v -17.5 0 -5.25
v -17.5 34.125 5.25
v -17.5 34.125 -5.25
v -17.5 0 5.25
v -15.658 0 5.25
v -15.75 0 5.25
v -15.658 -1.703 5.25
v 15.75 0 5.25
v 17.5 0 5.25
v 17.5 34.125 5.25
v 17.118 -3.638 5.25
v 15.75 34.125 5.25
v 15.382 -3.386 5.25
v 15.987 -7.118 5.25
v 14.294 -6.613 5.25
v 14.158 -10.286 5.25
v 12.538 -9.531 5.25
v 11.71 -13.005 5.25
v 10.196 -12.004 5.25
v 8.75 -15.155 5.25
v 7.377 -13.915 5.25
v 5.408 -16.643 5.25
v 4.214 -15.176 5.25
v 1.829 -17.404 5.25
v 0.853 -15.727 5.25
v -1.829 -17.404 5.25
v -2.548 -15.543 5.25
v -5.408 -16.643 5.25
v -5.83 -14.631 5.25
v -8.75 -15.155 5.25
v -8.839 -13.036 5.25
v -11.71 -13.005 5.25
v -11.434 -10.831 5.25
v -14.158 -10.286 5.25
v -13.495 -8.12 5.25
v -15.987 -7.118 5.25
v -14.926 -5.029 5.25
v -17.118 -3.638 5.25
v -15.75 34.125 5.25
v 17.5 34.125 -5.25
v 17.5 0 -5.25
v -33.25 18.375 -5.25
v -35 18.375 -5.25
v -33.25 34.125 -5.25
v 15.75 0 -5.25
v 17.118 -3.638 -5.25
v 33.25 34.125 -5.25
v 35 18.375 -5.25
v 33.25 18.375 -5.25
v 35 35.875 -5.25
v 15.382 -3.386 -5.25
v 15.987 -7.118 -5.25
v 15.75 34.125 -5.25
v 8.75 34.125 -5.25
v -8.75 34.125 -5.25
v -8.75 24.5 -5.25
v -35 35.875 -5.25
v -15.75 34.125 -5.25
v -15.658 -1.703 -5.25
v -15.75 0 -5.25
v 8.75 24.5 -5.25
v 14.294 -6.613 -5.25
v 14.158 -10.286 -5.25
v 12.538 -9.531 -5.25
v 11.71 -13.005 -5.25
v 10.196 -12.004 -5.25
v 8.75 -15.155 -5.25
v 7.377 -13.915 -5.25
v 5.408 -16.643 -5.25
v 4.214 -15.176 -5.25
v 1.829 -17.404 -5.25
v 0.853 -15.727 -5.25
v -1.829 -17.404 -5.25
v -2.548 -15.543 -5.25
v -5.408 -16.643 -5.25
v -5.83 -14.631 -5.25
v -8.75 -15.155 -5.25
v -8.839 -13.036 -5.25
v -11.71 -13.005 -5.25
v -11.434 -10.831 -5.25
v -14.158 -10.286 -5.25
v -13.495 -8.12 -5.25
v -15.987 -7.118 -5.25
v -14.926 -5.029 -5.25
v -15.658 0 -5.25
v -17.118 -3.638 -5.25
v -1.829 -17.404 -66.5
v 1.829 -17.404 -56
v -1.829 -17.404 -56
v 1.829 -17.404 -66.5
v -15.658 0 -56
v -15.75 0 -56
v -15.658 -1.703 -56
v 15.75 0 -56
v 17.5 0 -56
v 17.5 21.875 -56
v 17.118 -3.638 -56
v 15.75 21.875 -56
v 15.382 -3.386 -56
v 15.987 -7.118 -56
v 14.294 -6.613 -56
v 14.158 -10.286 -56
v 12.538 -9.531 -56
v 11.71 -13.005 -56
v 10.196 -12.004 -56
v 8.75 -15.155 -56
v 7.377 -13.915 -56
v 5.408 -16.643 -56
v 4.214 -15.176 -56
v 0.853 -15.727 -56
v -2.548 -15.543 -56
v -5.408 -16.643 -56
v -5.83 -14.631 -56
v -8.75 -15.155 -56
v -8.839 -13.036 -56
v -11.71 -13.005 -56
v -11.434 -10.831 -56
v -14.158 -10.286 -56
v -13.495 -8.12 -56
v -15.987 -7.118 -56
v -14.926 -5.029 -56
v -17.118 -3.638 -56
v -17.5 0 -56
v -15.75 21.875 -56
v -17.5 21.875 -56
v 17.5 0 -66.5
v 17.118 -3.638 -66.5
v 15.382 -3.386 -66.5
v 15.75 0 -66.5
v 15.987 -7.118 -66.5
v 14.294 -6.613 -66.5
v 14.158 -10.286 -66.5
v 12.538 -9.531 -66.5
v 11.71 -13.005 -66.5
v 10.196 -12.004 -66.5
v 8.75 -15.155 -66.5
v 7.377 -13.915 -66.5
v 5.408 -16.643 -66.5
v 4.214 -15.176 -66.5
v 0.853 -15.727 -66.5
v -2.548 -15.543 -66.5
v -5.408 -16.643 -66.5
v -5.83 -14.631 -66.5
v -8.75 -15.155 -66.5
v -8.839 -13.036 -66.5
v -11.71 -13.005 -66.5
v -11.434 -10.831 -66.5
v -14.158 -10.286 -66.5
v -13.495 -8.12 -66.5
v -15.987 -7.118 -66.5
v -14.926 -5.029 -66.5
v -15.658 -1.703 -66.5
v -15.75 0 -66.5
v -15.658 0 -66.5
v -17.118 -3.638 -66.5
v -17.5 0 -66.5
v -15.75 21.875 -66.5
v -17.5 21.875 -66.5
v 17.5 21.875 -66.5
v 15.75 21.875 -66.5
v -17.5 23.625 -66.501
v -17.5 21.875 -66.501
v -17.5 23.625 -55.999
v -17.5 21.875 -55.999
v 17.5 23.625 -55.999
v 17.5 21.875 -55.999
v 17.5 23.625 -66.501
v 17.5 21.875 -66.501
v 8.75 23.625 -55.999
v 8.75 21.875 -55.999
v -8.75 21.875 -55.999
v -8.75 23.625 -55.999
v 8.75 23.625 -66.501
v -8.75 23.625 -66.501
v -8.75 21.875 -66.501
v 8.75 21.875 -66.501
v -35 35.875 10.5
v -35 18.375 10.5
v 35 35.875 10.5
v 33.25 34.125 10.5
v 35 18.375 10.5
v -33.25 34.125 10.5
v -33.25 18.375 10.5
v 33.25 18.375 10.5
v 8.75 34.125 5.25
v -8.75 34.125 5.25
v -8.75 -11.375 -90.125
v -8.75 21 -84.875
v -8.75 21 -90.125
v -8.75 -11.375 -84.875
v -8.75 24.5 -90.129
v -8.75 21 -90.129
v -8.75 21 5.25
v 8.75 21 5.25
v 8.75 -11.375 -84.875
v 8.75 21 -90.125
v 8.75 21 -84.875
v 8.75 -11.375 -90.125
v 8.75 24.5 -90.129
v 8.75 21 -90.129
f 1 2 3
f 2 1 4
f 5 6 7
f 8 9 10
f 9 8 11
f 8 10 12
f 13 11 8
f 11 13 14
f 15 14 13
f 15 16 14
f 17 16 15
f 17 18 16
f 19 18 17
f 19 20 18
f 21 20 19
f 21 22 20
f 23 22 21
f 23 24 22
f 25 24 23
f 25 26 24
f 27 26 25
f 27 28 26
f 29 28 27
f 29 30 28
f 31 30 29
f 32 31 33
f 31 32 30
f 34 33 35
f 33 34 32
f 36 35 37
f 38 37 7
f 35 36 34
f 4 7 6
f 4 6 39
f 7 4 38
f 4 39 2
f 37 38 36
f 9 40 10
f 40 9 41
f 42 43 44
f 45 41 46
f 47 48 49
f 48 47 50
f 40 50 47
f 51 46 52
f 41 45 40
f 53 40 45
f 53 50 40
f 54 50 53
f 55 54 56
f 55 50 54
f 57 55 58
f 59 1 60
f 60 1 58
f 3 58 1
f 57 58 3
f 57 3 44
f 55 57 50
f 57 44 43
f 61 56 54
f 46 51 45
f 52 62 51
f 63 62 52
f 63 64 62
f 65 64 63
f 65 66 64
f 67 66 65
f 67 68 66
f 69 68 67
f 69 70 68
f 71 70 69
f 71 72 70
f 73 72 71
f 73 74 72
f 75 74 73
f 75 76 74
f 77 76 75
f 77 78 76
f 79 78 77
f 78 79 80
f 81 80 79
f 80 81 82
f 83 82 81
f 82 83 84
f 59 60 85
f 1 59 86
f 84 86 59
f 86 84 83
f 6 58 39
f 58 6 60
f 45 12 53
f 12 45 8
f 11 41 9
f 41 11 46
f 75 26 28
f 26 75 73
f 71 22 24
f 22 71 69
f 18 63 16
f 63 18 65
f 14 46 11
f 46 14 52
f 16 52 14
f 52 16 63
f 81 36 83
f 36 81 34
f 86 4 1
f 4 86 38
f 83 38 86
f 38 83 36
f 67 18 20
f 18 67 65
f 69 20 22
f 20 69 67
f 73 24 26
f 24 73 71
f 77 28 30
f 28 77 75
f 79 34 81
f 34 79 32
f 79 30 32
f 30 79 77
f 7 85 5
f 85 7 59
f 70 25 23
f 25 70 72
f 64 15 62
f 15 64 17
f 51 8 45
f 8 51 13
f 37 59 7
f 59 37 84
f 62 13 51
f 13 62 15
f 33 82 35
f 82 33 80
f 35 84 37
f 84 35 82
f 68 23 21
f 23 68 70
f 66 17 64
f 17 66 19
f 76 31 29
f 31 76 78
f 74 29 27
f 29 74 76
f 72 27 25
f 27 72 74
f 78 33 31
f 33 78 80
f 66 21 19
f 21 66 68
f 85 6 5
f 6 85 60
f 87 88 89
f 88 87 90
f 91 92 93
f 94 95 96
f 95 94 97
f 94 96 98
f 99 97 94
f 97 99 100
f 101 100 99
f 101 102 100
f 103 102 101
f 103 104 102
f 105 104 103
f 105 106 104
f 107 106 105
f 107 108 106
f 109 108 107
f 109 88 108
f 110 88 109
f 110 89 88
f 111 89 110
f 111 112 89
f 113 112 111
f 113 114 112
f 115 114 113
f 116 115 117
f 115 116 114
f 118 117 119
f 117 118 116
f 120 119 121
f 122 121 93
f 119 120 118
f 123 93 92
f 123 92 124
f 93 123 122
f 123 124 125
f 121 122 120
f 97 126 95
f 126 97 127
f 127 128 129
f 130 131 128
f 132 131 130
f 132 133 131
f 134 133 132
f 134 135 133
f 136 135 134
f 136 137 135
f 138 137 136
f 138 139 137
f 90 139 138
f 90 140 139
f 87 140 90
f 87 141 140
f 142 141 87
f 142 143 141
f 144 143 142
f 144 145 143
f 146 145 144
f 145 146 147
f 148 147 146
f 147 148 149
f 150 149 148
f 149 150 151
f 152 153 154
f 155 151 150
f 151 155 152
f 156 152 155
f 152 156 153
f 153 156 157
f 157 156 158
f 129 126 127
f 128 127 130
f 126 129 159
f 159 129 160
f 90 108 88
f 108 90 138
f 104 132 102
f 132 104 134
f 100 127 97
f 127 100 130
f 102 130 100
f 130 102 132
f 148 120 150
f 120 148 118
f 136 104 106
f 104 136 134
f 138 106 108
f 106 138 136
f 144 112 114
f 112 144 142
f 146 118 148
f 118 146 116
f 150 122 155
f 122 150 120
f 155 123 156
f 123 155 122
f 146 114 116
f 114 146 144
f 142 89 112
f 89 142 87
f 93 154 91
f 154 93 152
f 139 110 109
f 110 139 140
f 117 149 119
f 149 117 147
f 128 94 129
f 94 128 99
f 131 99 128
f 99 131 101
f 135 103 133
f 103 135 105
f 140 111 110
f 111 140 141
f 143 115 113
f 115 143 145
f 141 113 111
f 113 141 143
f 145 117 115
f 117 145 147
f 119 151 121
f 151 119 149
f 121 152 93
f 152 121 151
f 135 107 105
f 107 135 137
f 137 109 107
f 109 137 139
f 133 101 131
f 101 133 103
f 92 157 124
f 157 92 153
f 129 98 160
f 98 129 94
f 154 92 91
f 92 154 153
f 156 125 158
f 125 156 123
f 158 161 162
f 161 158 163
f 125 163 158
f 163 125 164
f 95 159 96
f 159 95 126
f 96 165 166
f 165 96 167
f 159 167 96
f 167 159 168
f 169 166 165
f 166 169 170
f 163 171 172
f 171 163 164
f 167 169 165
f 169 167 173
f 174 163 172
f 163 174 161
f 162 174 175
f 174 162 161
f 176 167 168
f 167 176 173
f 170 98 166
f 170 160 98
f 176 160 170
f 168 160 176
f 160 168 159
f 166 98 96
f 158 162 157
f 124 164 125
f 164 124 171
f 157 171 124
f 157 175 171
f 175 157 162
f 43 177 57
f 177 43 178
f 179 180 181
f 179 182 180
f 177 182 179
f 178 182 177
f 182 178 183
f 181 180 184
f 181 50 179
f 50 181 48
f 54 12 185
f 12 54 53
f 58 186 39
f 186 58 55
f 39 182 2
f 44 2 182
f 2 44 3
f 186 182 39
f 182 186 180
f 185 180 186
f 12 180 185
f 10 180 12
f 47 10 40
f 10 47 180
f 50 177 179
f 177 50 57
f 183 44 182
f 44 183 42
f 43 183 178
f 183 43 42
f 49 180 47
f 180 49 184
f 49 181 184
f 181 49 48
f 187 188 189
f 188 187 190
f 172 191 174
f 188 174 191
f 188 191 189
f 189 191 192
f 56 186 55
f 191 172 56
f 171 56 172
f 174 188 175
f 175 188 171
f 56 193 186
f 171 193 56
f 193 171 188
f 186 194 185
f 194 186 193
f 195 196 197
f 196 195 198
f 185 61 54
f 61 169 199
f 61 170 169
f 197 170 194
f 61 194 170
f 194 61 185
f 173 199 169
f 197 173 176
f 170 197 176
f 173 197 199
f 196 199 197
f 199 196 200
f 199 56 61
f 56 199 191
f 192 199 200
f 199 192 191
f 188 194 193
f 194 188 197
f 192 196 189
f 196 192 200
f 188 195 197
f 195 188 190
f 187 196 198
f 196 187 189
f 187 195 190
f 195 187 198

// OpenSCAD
thickness = 6;
width = 20;
eps = 0.001;
radius = width / 2;

setback = 10;
vsetback = 13;

scale([1.75, 1.75, 1.75]){
// side extenders
difference() {
translate([0, (radius + setback)/2, 0])
  cube([width, radius + setback, thickness], center = true);
translate([0, (radius + setback)/2 ,0])
  cube([width - 2, radius + setback + eps, thickness + eps], center = true);
}

// nail bar
translate([0, radius + setback, 1.5])
cube([2 * width, 1, thickness + 3], center = true);

translate([-(width-0.5), radius + setback - 4.5, 1.5])
cube([1, 10, thickness + 3], center = true);

translate([width-0.5, radius + setback - 4.5, 1.5])
cube([1, 10, thickness + 3], center = true);

// top loop
difference() {
  cylinder(thickness, width/2, width/2, center = true);
  cylinder(thickness + eps, 9, 9, center = true);
  translate([0, 10, 0])
    cube([18, 20, 10 + eps], center = true);
}

// attachment from vertical extension bar to nailbar
translate([0, vsetback + (radius + setback - vsetback - 1)/2, 0]) 
    cube([10, (radius + setback - vsetback) + eps, 6], center=true);

// vertical extension bar
translate([0, vsetback, -24.25-eps])
cube([ 10, 2, 54.5 + 2*eps], center=true);

// bottom loop
translate([0, 0, -35]) {
difference() {
  cylinder(thickness, width/2, width/2, center = true);
  cylinder(thickness + eps, 9, 9, center = true);
  translate([0, 10, 0])
    cube([18, 20, 10 + eps], center = true);
}

// bottom side extenders
difference() {
translate([0, (vsetback)/2, 0])
  cube([width,  vsetback, thickness], center = true);
translate([0, ( vsetback )/2 ,0])
  cube([width - 2,  vsetback + eps, thickness + eps], center = true);
}

// bottom horizontal bar
translate([0, vsetback, 0])
cube([width, 1, thickness + eps], center=true);
}

// bottom support
translate([0, 3.5, -50])
    cube([10, 20, 3], center=true);
}
